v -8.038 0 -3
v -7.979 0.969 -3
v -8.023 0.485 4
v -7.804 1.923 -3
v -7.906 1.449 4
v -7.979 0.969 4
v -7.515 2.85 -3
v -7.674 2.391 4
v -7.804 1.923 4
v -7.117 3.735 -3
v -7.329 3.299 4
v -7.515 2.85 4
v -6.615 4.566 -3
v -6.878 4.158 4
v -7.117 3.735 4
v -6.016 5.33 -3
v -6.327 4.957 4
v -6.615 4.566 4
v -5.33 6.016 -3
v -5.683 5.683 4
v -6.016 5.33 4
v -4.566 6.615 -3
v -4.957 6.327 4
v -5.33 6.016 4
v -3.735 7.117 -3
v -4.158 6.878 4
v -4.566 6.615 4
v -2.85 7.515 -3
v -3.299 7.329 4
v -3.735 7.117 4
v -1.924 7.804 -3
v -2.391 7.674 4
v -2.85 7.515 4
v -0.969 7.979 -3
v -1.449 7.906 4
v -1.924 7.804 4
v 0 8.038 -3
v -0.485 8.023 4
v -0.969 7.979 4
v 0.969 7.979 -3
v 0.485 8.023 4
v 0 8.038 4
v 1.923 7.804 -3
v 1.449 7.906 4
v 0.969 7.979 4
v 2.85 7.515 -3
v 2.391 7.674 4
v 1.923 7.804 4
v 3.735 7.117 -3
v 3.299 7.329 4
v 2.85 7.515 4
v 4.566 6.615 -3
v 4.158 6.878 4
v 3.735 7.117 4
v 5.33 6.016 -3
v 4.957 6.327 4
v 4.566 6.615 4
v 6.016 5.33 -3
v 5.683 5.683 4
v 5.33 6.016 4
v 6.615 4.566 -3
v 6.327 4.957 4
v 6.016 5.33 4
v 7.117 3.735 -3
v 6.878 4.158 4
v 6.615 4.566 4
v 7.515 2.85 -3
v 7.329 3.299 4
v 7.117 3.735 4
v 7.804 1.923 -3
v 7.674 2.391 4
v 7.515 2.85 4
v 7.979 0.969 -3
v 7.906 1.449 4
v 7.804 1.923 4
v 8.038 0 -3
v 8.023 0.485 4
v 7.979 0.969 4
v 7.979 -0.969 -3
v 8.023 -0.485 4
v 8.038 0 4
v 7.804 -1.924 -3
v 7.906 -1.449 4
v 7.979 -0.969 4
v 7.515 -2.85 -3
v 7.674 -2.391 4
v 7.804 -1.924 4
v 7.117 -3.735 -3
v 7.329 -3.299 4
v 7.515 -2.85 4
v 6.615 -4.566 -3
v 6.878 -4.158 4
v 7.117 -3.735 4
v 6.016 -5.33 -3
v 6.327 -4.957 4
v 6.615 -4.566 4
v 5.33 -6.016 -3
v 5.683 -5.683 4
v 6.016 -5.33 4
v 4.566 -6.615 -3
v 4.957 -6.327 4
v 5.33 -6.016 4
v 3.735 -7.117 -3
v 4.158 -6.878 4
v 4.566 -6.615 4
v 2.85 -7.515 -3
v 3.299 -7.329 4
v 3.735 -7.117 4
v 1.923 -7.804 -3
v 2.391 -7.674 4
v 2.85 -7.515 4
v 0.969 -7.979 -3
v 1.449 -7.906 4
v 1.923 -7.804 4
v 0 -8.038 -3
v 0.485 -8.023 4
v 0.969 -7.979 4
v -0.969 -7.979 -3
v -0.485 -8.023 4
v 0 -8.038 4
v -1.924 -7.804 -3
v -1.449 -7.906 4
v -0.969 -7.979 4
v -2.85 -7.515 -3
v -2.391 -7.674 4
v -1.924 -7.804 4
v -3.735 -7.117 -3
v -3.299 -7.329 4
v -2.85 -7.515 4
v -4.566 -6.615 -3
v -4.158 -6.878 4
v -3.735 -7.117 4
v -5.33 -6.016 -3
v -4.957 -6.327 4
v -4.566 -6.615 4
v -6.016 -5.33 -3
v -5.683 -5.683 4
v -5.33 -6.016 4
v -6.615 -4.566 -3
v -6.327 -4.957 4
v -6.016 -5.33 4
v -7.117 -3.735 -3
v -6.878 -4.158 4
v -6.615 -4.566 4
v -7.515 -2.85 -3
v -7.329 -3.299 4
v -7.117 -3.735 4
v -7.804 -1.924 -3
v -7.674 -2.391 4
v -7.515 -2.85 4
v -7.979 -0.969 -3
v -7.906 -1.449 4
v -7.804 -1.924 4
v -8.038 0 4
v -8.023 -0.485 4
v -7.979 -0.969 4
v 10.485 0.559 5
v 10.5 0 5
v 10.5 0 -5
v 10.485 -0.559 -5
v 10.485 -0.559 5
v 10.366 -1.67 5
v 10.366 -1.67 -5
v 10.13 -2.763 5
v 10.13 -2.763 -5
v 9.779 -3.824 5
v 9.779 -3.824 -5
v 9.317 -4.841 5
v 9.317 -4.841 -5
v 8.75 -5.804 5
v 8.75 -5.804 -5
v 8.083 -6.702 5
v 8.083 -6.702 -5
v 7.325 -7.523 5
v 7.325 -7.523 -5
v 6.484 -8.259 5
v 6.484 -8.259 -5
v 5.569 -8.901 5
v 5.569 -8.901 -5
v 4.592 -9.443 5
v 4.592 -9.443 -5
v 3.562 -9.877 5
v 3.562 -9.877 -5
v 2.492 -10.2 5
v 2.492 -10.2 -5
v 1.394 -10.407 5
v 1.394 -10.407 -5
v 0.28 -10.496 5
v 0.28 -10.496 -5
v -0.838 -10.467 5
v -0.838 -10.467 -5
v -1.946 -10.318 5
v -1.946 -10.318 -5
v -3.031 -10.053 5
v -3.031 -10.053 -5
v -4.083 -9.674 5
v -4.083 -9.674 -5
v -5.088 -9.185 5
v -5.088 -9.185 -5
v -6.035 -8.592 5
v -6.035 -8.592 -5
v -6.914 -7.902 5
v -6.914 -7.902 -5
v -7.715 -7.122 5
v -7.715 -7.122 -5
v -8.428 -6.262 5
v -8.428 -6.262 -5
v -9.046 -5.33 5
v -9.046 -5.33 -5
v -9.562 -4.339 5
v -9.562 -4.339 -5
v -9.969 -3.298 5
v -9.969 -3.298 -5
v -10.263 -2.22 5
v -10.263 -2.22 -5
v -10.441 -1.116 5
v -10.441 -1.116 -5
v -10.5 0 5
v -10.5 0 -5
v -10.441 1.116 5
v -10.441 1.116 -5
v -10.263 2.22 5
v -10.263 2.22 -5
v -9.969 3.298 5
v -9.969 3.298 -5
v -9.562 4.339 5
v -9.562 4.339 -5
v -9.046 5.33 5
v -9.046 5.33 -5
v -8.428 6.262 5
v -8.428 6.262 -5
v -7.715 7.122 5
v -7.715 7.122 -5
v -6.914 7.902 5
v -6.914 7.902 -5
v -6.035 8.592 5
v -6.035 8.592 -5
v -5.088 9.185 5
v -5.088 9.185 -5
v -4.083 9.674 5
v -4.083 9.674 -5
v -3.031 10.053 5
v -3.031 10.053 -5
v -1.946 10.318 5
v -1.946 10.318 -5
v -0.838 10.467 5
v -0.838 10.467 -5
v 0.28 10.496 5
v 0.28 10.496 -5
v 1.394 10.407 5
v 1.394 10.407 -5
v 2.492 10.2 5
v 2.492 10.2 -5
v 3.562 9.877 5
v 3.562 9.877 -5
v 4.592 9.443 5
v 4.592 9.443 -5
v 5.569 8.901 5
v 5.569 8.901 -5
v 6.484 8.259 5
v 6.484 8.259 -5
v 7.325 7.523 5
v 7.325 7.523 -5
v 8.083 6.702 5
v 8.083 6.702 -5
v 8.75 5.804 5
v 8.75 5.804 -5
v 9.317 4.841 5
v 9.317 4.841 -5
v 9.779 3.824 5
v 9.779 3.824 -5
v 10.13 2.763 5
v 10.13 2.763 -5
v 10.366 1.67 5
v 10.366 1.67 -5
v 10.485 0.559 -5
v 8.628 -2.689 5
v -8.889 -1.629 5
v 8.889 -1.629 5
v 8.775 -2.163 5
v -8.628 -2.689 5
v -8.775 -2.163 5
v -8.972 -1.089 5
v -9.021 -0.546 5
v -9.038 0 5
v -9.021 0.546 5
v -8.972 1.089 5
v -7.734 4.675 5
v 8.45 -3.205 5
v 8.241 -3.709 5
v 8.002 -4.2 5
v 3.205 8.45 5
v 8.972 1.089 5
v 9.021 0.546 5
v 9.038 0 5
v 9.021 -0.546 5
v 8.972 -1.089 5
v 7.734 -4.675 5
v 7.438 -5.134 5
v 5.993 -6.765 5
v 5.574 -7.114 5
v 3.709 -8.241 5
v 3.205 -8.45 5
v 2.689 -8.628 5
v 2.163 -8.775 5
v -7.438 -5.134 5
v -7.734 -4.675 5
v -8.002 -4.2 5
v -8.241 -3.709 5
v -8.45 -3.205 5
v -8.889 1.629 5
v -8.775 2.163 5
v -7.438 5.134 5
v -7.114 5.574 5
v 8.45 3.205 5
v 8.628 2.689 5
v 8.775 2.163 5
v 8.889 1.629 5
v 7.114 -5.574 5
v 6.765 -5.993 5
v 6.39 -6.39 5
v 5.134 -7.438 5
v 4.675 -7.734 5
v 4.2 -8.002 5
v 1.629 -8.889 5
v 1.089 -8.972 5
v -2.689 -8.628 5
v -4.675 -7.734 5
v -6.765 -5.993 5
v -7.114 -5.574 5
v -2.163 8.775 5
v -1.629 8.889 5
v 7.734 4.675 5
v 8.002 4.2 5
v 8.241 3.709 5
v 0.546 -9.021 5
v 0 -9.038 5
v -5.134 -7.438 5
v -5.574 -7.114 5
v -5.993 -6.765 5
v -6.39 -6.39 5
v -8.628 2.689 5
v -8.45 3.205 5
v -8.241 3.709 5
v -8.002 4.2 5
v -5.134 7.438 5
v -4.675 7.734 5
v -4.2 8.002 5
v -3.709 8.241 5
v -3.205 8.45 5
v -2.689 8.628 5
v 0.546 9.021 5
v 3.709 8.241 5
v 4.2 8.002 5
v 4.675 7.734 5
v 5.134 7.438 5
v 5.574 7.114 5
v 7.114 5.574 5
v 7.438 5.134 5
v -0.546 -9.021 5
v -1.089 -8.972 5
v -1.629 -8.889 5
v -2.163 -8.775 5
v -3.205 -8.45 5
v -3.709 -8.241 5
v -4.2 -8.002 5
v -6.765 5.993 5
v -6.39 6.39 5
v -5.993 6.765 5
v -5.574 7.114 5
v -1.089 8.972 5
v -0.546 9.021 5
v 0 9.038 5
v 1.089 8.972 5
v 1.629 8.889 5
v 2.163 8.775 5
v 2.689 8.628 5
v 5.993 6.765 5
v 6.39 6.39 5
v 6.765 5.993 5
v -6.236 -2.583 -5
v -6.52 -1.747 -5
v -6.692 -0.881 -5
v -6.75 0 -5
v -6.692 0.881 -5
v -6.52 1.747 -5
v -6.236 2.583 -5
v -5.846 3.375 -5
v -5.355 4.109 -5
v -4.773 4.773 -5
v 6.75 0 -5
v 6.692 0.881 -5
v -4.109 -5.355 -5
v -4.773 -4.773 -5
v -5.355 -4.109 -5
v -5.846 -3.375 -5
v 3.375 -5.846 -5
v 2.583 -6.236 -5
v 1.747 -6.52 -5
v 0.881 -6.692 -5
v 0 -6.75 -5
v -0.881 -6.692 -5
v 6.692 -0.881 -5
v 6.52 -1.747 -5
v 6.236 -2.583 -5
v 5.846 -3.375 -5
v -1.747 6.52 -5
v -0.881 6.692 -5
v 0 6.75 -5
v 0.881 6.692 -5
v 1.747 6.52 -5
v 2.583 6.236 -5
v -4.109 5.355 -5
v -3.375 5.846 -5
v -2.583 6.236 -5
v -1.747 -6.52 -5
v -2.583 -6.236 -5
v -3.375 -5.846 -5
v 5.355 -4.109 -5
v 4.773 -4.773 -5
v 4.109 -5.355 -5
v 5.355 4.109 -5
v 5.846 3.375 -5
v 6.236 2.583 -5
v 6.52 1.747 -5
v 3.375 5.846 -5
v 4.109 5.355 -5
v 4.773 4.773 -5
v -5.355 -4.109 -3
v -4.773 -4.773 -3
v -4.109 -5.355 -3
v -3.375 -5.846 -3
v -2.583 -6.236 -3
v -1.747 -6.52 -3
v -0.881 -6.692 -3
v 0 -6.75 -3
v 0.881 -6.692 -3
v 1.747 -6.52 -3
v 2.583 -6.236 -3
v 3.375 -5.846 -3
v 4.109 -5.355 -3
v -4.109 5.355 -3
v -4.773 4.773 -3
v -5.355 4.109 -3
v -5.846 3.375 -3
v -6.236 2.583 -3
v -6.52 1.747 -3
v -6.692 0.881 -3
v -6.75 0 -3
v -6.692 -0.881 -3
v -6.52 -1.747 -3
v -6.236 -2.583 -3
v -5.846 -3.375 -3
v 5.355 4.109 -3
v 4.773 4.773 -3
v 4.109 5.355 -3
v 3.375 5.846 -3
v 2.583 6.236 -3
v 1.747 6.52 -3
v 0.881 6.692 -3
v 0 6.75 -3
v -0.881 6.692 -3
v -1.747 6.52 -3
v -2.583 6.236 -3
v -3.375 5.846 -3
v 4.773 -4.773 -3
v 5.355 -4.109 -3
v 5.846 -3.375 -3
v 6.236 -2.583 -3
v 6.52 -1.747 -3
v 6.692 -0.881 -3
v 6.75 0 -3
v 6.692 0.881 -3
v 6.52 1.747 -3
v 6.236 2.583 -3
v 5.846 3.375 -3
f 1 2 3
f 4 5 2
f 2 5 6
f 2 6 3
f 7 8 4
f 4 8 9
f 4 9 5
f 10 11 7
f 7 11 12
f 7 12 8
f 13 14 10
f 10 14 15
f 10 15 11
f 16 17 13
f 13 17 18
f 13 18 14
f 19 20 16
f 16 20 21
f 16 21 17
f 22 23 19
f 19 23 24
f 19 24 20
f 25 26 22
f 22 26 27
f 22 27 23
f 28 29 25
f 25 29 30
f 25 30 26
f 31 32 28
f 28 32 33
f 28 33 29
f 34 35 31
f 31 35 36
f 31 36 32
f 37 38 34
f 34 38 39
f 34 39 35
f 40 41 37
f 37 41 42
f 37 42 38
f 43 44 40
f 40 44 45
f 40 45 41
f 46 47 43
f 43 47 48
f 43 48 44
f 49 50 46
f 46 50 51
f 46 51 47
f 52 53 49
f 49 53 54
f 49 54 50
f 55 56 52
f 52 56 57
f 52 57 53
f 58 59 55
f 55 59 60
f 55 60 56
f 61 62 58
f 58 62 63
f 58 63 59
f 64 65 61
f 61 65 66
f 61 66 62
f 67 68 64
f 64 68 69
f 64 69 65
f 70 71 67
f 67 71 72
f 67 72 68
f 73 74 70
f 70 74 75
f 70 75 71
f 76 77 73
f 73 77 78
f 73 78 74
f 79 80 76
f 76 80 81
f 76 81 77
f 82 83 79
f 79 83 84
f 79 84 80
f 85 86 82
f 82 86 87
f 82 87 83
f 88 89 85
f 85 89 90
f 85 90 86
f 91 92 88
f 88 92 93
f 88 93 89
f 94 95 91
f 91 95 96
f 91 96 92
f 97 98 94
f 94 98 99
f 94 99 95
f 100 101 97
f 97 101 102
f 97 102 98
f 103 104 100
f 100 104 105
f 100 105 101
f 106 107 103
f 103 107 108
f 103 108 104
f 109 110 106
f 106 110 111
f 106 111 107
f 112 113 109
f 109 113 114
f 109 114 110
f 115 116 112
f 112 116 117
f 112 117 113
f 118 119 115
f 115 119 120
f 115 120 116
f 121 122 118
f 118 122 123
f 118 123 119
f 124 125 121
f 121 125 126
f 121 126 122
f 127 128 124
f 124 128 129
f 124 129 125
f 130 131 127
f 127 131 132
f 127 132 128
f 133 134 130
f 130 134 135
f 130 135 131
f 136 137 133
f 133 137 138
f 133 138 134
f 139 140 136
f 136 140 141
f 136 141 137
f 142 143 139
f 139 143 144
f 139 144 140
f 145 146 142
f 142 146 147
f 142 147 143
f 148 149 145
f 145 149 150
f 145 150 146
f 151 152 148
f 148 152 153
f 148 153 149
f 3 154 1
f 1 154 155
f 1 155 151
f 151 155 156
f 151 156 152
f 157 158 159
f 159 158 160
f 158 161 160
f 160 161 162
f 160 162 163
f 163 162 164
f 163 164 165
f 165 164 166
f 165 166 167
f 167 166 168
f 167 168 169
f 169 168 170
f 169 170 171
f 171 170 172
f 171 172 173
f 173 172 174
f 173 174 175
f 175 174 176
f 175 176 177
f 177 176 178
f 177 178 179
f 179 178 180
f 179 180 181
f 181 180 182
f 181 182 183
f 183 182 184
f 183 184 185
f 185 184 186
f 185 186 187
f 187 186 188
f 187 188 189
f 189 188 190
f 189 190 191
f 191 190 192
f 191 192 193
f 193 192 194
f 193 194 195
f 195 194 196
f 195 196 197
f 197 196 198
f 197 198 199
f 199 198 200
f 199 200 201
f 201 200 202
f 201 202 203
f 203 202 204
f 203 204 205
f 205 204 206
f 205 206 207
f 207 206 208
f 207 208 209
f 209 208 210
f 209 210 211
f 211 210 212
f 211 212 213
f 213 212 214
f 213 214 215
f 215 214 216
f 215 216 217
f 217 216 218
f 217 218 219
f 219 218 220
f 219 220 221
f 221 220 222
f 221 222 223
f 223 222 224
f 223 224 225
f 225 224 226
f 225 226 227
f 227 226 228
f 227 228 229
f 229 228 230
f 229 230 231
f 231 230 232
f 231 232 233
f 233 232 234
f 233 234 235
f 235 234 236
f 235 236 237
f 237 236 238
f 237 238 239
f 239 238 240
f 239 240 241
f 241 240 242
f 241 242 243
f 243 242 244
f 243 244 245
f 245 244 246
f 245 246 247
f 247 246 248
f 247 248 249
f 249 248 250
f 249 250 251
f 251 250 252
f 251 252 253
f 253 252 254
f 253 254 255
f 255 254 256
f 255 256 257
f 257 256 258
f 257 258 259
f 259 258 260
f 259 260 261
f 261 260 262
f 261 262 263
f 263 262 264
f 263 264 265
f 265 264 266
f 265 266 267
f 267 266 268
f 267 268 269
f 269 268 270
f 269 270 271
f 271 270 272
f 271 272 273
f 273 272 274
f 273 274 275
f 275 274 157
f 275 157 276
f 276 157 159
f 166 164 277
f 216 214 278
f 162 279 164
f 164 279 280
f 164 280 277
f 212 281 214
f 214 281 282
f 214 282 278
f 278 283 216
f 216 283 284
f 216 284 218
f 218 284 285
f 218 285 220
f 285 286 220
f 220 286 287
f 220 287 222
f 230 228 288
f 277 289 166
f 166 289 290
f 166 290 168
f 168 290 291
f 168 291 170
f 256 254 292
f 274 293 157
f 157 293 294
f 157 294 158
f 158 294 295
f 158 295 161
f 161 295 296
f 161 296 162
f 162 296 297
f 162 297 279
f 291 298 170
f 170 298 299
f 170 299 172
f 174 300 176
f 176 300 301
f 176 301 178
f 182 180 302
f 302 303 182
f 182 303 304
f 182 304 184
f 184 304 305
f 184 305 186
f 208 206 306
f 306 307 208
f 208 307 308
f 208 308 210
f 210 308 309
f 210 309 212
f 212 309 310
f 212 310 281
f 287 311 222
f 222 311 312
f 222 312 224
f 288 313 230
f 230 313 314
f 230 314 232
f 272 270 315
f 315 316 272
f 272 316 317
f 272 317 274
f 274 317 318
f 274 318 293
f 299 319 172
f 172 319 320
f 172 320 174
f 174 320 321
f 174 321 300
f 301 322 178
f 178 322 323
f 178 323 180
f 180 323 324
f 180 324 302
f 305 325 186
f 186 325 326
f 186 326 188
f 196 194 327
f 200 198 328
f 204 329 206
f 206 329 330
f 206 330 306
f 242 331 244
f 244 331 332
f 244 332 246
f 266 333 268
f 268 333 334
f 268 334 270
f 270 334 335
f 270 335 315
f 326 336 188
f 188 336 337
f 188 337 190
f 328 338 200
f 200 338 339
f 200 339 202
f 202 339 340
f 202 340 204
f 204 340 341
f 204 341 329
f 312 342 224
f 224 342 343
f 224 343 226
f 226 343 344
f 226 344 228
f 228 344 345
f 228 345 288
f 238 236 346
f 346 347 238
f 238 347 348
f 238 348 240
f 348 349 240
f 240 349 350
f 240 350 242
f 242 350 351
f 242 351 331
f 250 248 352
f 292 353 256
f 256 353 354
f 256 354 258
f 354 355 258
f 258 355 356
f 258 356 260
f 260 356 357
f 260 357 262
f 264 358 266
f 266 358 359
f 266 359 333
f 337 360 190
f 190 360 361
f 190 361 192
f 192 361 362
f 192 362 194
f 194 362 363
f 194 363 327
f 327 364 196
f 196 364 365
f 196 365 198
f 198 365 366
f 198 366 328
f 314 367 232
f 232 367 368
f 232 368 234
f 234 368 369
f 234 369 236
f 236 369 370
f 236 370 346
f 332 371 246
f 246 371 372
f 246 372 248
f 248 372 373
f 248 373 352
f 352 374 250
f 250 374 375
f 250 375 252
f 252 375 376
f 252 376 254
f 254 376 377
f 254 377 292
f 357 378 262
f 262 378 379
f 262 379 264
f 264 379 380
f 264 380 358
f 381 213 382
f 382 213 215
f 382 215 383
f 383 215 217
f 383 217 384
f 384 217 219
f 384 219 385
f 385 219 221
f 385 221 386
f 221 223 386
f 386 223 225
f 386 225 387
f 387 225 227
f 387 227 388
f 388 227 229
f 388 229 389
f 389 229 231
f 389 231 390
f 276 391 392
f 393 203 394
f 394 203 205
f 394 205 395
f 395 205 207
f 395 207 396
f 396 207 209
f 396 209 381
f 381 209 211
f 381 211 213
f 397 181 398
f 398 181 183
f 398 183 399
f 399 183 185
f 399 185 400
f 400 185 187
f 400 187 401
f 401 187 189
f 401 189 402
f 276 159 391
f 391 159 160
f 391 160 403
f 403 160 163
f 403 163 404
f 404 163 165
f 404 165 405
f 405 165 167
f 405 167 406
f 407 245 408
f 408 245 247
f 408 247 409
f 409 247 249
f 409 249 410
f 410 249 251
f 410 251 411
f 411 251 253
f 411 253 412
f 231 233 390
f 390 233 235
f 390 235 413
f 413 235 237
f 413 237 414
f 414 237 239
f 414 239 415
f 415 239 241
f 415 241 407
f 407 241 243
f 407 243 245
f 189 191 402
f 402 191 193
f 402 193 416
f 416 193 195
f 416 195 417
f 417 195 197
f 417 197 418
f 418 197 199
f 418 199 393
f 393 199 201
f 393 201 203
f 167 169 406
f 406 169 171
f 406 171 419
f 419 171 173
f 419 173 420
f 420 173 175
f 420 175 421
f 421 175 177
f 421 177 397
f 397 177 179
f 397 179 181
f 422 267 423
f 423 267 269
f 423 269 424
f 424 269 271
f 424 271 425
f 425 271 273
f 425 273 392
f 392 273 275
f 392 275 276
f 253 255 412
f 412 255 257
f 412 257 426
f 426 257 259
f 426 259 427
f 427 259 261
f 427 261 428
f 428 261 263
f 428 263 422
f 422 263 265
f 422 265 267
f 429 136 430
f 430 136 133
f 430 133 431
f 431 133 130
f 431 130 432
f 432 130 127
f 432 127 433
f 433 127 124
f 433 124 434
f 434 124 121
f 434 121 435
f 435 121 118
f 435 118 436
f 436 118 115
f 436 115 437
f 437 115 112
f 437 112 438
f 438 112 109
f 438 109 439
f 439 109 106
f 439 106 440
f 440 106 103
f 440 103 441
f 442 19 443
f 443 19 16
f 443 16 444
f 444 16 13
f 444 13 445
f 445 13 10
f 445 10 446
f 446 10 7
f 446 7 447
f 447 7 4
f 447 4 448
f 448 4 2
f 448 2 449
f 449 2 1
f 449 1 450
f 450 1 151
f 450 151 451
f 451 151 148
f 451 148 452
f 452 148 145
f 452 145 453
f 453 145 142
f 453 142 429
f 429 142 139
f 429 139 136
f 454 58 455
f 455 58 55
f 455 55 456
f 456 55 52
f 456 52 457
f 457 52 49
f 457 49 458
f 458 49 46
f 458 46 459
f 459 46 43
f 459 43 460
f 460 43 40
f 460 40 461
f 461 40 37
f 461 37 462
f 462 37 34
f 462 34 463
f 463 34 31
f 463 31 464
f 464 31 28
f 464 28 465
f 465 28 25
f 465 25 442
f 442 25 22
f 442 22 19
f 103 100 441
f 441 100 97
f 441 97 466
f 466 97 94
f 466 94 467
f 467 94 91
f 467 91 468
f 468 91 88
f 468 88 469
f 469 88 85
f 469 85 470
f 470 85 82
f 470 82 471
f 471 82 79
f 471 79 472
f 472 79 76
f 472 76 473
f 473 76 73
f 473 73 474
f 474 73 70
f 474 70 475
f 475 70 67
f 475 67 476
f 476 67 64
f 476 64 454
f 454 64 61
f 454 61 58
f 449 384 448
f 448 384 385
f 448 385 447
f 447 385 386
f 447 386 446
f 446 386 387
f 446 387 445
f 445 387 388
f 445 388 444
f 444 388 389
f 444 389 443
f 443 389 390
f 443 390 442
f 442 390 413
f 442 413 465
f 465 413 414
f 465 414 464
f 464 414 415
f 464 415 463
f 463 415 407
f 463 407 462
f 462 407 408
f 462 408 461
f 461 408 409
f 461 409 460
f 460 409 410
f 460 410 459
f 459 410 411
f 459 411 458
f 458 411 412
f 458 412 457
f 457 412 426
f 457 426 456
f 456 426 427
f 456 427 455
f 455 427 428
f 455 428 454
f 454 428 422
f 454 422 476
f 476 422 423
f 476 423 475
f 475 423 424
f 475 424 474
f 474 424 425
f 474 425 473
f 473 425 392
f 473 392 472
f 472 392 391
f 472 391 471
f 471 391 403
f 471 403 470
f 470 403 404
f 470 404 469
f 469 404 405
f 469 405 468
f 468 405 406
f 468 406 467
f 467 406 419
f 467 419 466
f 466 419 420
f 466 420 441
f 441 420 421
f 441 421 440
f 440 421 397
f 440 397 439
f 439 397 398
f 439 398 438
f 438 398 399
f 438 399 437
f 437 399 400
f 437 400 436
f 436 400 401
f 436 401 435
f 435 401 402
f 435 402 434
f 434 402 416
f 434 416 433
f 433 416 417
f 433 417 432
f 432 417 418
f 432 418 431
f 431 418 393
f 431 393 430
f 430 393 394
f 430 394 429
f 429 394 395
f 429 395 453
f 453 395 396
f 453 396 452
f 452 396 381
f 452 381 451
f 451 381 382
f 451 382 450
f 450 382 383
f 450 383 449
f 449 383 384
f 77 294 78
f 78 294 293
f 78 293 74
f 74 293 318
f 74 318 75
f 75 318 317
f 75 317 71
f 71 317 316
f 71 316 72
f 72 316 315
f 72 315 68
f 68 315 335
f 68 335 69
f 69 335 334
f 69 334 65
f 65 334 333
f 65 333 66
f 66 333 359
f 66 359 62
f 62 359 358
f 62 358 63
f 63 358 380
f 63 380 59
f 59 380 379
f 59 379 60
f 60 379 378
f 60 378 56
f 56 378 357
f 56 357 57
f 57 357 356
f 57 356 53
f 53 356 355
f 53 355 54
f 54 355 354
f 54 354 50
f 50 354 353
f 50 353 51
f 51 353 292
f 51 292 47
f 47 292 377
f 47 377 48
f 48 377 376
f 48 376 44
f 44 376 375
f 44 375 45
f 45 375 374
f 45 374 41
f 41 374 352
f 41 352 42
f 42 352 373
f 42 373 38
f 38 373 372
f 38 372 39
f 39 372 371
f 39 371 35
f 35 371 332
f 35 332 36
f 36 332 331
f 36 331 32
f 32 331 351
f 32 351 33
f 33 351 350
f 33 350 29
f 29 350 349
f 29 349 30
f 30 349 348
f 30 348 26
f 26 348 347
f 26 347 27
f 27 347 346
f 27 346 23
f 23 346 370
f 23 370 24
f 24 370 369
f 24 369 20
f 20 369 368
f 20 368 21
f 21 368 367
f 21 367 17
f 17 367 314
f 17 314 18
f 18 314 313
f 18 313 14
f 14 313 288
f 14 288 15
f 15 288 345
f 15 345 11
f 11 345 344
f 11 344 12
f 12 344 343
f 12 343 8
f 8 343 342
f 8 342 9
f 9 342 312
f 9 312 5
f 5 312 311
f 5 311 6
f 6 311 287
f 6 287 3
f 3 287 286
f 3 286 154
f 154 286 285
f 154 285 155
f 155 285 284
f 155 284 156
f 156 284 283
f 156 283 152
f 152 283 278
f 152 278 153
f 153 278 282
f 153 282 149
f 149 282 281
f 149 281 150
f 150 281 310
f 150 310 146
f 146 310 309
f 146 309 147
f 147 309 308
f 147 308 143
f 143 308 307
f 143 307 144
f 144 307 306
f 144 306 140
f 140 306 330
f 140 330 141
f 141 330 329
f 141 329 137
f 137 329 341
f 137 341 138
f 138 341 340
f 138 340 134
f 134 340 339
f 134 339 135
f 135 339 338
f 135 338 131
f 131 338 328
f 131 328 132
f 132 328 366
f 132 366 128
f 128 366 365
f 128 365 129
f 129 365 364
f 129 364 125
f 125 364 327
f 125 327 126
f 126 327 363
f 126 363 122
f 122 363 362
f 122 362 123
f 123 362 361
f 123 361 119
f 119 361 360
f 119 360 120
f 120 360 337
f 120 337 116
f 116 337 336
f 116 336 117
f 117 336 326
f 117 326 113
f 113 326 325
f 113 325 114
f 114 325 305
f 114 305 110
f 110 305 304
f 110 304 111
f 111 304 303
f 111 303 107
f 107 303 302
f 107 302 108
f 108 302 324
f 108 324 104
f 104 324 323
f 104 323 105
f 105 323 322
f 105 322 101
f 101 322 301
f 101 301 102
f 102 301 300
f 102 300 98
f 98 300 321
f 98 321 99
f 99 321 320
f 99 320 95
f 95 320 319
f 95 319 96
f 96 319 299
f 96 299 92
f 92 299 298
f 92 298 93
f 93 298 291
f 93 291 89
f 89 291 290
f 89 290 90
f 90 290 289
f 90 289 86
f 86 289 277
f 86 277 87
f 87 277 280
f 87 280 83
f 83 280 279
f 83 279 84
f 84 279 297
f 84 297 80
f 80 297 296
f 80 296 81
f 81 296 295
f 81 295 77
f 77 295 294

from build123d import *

# Parameters (mm, degrees)
SKETCH1_R           = 10.5
SKETCH1_R_2         = 8.0375
BOSS_EXTRUDE1_DEPTH = 5
BOSS_EXTRUDE2_START = -5
SKETCH1_3_R         = 8.0375
SKETCH1_3_R_2       = 6.75
BOSS_EXTRUDE2_DEPTH = 2
CHAMFER1_SIZE       = 1


with BuildPart() as part:
    # Sketch1 → Boss-Extrude1 (new body, symmetric)
    with BuildSketch(Plane.XY):
        Circle(SKETCH1_R)
        Circle(SKETCH1_R_2, mode=Mode.SUBTRACT)
    extrude(amount=BOSS_EXTRUDE1_DEPTH, both=True)

    # Sketch1<3> → Boss-Extrude2 (add)
    with BuildSketch(Plane.XY.offset(BOSS_EXTRUDE2_START)):
        Circle(SKETCH1_3_R)
        Circle(SKETCH1_3_R_2, mode=Mode.SUBTRACT)
    extrude(amount=BOSS_EXTRUDE2_DEPTH)

    # Chamfer1
    chamfer1_edges = [part.edges().sort_by_distance(p)[0] for p in [
        (-8.0375, 0, 5),
    ]]
    chamfer(chamfer1_edges, length=CHAMFER1_SIZE)


solid = part.part
